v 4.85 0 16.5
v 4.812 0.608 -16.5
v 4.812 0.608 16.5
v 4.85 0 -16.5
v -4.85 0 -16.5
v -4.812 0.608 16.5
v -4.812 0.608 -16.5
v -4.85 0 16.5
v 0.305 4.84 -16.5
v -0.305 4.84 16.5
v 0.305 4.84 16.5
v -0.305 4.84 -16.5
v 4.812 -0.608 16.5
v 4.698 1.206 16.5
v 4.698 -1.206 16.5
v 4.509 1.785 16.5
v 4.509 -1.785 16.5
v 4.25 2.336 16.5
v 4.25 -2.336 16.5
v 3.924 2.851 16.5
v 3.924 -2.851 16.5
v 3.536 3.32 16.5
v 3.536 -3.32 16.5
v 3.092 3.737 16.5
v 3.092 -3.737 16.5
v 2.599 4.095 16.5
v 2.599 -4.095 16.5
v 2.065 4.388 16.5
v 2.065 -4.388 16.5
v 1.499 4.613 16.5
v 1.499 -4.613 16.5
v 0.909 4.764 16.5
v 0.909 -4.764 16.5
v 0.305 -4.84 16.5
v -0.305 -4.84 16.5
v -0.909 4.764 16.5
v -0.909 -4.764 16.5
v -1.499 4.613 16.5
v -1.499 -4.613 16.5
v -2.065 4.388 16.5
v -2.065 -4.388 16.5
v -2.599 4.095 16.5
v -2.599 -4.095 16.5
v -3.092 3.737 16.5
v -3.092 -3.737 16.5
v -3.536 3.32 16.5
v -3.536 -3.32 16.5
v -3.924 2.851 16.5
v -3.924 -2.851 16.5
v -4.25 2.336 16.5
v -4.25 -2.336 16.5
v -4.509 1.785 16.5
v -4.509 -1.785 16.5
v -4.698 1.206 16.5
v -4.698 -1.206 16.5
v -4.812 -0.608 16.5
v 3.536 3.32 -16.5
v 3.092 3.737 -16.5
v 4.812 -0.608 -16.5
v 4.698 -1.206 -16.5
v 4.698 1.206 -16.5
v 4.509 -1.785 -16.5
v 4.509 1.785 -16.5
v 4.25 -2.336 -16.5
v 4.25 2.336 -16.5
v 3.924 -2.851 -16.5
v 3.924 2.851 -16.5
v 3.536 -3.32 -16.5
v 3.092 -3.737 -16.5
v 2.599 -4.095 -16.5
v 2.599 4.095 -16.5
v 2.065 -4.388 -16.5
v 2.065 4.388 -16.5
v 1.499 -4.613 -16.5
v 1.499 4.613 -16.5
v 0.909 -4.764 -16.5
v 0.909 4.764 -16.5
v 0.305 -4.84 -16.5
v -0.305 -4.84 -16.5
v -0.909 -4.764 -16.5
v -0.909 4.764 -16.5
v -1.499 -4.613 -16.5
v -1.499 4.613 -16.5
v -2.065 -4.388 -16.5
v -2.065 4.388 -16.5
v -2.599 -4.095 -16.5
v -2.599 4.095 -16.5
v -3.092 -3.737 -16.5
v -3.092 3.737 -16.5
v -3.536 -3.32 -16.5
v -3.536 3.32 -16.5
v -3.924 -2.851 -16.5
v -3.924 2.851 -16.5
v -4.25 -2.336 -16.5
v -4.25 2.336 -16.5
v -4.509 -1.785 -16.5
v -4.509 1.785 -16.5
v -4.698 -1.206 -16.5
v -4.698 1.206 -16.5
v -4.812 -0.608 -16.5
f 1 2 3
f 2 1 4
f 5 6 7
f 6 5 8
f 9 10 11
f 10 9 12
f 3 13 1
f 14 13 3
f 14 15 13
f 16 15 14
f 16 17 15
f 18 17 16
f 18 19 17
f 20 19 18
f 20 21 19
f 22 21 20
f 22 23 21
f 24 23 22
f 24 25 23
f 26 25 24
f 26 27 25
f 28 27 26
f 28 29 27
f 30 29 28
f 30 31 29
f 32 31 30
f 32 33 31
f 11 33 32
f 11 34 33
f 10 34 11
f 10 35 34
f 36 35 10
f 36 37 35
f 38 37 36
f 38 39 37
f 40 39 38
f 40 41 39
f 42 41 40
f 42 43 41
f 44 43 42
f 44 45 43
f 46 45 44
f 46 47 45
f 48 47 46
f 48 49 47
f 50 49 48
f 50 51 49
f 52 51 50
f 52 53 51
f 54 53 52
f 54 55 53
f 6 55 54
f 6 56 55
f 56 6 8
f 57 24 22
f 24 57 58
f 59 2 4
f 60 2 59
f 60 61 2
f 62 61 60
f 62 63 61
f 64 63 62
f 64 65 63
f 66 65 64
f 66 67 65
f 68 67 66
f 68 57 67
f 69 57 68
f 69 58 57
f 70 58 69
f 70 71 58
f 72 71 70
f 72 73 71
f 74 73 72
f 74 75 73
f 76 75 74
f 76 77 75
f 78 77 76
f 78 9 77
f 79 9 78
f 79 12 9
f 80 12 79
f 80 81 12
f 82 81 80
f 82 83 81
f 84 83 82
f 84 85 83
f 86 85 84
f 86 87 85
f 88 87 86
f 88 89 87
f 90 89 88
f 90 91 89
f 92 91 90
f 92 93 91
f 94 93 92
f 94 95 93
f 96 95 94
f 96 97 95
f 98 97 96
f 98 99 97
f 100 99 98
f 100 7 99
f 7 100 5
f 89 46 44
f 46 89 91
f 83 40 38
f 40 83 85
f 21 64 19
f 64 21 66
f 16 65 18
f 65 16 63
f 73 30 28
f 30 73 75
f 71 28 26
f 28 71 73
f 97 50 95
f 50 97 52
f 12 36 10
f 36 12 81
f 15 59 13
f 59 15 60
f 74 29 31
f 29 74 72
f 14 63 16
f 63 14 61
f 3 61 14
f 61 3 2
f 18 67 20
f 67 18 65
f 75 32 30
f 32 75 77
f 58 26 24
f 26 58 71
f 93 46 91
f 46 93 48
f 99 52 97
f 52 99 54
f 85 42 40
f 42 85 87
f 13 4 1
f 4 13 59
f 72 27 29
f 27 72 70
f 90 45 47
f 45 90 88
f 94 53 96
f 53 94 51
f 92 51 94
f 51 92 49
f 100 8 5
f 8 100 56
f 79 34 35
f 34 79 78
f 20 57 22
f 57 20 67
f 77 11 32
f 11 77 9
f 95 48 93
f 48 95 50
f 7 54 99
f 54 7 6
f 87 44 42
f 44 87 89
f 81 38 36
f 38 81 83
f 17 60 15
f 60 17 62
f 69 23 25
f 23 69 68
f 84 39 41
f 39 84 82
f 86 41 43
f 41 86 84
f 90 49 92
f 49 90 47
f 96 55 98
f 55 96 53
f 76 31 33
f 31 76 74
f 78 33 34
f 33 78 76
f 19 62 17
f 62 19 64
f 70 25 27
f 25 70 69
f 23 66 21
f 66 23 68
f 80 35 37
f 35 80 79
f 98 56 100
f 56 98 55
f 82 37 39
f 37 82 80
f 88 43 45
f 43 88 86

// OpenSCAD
$fn = 50;


difference() {
	union() {
		translate(v = [0, 0, -16.5000000000]) {
			cylinder(h = 33, r = 4.8500000000);
		}
	}
	union() {
		translate(v = [0, 0, -100.0000000000]) {
			cylinder(h = 200, r = 0);
		}
	}
}
